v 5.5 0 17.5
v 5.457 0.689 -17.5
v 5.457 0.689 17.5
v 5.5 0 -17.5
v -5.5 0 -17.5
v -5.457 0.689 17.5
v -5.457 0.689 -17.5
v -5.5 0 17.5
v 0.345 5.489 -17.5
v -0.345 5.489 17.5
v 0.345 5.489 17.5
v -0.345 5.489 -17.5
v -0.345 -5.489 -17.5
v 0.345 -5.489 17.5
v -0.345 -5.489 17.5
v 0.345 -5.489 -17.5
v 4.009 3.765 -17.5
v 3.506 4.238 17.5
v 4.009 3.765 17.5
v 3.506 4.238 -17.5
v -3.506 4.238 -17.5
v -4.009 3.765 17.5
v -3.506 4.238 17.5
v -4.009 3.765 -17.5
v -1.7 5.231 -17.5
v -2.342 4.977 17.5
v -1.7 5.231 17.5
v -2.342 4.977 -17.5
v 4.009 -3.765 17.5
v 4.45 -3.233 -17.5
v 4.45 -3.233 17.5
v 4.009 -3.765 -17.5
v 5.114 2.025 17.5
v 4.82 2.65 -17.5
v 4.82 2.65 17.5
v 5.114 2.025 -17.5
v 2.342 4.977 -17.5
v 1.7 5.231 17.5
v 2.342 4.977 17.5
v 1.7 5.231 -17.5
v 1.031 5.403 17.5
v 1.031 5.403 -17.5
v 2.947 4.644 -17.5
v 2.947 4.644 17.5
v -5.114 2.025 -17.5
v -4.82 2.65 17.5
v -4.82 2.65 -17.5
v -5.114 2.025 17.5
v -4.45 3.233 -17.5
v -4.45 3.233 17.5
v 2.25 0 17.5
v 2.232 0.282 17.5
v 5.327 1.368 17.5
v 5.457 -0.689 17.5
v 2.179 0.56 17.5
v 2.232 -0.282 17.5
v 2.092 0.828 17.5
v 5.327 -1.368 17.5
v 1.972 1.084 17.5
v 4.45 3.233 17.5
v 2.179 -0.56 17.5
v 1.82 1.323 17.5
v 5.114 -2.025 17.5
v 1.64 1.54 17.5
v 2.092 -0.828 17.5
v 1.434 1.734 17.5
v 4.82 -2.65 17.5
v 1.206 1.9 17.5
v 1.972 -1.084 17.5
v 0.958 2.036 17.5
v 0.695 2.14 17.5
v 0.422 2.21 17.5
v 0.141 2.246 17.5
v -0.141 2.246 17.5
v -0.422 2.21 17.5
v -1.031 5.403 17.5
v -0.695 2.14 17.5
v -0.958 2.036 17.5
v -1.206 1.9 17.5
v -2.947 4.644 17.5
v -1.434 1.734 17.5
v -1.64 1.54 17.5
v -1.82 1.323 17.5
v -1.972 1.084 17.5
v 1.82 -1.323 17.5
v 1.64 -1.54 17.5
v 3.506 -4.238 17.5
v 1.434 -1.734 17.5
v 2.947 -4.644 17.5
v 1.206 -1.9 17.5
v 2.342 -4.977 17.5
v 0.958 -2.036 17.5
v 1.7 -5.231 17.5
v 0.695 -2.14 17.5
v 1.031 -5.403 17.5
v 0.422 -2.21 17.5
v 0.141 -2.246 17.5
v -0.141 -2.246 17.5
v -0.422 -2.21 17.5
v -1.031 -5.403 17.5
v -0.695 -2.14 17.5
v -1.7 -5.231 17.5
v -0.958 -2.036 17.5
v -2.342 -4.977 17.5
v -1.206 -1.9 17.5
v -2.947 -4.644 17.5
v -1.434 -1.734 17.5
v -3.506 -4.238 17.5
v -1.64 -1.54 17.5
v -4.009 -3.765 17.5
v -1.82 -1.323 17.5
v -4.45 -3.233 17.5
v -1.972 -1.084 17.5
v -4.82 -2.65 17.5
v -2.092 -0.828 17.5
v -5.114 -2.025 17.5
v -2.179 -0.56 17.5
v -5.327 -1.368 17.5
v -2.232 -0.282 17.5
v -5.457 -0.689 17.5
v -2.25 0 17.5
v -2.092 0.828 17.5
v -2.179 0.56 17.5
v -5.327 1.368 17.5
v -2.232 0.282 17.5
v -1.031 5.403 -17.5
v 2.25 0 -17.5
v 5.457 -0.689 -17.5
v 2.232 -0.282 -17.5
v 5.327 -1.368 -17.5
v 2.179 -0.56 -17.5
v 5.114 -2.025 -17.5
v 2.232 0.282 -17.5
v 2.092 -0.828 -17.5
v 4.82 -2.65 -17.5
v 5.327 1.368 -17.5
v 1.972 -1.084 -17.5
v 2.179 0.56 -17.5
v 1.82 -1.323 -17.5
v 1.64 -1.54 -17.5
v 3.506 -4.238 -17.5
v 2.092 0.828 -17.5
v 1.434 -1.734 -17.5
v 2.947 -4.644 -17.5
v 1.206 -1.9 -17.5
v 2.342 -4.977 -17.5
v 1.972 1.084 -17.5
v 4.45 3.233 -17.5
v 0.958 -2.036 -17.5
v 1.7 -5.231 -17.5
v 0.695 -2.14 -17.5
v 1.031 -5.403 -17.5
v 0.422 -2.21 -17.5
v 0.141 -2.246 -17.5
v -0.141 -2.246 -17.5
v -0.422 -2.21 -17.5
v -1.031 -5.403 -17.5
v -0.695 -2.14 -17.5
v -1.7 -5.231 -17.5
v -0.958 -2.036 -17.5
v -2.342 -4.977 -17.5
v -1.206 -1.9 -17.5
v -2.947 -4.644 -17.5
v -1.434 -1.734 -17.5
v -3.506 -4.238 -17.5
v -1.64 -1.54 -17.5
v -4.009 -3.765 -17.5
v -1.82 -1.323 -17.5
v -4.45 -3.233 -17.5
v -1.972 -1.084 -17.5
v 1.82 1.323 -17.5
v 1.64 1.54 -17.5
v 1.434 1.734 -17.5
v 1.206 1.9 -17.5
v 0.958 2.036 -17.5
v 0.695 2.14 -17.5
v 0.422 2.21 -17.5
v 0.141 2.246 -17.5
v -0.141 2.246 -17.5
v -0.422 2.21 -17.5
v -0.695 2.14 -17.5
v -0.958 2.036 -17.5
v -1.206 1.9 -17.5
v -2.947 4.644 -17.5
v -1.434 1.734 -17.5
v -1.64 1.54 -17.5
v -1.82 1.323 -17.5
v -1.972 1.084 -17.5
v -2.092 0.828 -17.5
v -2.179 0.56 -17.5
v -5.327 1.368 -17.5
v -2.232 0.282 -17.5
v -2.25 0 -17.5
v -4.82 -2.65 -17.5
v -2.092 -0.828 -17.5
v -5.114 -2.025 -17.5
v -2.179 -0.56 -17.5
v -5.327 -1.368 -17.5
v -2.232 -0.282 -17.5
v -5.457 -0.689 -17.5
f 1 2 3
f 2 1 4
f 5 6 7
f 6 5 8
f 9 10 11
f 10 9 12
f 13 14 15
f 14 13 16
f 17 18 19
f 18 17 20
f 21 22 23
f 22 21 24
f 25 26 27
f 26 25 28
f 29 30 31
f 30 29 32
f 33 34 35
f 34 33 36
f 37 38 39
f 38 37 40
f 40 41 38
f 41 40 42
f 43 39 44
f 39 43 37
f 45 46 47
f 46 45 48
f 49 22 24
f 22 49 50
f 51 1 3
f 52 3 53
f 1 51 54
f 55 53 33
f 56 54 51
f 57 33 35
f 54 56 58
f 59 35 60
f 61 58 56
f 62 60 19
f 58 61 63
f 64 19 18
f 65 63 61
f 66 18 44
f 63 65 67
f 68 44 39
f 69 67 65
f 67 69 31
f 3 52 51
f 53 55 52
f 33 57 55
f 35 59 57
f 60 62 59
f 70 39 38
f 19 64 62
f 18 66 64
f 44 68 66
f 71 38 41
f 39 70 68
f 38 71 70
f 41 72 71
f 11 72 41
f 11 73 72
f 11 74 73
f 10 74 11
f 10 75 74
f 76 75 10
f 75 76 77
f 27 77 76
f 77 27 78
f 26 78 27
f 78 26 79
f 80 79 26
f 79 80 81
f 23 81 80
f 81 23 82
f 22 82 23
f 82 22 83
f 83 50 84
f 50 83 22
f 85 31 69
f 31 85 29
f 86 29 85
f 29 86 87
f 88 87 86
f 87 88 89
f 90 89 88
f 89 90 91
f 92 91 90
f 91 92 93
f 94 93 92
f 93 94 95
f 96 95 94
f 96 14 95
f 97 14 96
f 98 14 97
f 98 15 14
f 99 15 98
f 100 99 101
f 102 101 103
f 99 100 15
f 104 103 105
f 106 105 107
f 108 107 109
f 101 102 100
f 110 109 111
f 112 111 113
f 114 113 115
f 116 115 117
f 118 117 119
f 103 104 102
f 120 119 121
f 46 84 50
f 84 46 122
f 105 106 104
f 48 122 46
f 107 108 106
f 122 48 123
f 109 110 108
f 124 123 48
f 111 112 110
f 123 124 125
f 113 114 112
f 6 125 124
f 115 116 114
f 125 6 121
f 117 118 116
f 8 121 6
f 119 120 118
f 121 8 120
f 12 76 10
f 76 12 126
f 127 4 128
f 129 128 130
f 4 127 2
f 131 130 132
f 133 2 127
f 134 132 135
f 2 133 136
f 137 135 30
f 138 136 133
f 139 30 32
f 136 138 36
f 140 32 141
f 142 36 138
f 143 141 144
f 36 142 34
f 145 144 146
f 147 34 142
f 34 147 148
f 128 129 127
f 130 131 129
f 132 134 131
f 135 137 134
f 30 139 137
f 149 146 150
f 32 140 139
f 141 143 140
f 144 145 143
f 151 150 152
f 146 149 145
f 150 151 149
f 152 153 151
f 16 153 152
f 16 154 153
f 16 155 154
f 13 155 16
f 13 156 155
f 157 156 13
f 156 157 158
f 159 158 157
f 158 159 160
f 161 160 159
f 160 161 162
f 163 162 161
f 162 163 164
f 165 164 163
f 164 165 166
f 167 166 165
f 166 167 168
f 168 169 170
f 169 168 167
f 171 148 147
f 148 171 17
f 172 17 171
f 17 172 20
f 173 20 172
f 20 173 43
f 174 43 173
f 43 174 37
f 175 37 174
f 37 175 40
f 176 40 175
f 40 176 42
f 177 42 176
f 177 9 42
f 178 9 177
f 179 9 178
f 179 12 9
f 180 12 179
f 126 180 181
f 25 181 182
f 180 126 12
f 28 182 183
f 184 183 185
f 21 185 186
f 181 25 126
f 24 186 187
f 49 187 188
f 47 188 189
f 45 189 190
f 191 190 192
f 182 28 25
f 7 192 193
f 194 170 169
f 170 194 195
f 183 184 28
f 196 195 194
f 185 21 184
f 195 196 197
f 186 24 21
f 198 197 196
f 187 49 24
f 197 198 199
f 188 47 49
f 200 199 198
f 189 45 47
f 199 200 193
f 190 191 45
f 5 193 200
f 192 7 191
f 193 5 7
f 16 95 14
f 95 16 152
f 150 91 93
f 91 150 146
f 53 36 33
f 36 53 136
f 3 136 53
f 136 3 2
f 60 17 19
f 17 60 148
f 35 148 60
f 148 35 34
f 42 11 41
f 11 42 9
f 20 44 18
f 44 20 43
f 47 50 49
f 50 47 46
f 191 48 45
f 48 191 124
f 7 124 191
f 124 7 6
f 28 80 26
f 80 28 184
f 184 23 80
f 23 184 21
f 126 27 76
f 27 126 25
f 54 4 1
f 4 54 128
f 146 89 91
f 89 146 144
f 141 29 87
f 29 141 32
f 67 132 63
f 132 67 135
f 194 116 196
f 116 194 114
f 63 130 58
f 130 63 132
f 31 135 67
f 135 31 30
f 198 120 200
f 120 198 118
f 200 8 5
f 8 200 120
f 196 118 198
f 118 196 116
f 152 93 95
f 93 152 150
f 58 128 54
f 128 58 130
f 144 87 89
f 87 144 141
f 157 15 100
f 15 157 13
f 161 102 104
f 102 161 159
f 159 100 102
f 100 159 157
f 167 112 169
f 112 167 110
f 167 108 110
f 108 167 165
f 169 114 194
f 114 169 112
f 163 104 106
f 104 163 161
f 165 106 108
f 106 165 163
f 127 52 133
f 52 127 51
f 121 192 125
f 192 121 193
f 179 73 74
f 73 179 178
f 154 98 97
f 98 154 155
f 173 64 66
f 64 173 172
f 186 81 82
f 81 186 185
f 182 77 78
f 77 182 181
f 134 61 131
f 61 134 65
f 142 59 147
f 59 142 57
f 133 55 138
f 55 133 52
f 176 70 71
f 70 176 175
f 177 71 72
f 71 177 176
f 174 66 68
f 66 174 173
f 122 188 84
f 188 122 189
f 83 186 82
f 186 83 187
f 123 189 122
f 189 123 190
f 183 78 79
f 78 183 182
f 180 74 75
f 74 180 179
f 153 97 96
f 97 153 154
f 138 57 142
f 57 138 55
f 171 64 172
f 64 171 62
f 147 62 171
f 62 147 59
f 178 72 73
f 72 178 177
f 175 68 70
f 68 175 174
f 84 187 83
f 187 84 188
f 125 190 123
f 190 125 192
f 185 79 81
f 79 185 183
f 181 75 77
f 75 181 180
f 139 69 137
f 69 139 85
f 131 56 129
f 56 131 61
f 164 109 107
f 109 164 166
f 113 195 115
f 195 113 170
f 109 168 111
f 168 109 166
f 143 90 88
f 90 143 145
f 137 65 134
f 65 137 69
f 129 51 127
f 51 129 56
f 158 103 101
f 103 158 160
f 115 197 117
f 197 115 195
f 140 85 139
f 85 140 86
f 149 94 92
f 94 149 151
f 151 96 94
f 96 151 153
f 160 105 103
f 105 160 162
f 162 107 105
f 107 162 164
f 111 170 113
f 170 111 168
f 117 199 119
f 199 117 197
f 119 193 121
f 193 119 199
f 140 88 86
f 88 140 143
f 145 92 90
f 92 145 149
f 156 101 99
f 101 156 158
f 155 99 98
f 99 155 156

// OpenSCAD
$fn = 50;


difference() {
	union() {
		translate(v = [0, 0, -17.5000000000]) {
			cylinder(h = 35, r = 5.5000000000);
		}
	}
	union() {
		translate(v = [0, 0, -100.0000000000]) {
			cylinder(h = 200, r = 2.2500000000);
		}
	}
}
